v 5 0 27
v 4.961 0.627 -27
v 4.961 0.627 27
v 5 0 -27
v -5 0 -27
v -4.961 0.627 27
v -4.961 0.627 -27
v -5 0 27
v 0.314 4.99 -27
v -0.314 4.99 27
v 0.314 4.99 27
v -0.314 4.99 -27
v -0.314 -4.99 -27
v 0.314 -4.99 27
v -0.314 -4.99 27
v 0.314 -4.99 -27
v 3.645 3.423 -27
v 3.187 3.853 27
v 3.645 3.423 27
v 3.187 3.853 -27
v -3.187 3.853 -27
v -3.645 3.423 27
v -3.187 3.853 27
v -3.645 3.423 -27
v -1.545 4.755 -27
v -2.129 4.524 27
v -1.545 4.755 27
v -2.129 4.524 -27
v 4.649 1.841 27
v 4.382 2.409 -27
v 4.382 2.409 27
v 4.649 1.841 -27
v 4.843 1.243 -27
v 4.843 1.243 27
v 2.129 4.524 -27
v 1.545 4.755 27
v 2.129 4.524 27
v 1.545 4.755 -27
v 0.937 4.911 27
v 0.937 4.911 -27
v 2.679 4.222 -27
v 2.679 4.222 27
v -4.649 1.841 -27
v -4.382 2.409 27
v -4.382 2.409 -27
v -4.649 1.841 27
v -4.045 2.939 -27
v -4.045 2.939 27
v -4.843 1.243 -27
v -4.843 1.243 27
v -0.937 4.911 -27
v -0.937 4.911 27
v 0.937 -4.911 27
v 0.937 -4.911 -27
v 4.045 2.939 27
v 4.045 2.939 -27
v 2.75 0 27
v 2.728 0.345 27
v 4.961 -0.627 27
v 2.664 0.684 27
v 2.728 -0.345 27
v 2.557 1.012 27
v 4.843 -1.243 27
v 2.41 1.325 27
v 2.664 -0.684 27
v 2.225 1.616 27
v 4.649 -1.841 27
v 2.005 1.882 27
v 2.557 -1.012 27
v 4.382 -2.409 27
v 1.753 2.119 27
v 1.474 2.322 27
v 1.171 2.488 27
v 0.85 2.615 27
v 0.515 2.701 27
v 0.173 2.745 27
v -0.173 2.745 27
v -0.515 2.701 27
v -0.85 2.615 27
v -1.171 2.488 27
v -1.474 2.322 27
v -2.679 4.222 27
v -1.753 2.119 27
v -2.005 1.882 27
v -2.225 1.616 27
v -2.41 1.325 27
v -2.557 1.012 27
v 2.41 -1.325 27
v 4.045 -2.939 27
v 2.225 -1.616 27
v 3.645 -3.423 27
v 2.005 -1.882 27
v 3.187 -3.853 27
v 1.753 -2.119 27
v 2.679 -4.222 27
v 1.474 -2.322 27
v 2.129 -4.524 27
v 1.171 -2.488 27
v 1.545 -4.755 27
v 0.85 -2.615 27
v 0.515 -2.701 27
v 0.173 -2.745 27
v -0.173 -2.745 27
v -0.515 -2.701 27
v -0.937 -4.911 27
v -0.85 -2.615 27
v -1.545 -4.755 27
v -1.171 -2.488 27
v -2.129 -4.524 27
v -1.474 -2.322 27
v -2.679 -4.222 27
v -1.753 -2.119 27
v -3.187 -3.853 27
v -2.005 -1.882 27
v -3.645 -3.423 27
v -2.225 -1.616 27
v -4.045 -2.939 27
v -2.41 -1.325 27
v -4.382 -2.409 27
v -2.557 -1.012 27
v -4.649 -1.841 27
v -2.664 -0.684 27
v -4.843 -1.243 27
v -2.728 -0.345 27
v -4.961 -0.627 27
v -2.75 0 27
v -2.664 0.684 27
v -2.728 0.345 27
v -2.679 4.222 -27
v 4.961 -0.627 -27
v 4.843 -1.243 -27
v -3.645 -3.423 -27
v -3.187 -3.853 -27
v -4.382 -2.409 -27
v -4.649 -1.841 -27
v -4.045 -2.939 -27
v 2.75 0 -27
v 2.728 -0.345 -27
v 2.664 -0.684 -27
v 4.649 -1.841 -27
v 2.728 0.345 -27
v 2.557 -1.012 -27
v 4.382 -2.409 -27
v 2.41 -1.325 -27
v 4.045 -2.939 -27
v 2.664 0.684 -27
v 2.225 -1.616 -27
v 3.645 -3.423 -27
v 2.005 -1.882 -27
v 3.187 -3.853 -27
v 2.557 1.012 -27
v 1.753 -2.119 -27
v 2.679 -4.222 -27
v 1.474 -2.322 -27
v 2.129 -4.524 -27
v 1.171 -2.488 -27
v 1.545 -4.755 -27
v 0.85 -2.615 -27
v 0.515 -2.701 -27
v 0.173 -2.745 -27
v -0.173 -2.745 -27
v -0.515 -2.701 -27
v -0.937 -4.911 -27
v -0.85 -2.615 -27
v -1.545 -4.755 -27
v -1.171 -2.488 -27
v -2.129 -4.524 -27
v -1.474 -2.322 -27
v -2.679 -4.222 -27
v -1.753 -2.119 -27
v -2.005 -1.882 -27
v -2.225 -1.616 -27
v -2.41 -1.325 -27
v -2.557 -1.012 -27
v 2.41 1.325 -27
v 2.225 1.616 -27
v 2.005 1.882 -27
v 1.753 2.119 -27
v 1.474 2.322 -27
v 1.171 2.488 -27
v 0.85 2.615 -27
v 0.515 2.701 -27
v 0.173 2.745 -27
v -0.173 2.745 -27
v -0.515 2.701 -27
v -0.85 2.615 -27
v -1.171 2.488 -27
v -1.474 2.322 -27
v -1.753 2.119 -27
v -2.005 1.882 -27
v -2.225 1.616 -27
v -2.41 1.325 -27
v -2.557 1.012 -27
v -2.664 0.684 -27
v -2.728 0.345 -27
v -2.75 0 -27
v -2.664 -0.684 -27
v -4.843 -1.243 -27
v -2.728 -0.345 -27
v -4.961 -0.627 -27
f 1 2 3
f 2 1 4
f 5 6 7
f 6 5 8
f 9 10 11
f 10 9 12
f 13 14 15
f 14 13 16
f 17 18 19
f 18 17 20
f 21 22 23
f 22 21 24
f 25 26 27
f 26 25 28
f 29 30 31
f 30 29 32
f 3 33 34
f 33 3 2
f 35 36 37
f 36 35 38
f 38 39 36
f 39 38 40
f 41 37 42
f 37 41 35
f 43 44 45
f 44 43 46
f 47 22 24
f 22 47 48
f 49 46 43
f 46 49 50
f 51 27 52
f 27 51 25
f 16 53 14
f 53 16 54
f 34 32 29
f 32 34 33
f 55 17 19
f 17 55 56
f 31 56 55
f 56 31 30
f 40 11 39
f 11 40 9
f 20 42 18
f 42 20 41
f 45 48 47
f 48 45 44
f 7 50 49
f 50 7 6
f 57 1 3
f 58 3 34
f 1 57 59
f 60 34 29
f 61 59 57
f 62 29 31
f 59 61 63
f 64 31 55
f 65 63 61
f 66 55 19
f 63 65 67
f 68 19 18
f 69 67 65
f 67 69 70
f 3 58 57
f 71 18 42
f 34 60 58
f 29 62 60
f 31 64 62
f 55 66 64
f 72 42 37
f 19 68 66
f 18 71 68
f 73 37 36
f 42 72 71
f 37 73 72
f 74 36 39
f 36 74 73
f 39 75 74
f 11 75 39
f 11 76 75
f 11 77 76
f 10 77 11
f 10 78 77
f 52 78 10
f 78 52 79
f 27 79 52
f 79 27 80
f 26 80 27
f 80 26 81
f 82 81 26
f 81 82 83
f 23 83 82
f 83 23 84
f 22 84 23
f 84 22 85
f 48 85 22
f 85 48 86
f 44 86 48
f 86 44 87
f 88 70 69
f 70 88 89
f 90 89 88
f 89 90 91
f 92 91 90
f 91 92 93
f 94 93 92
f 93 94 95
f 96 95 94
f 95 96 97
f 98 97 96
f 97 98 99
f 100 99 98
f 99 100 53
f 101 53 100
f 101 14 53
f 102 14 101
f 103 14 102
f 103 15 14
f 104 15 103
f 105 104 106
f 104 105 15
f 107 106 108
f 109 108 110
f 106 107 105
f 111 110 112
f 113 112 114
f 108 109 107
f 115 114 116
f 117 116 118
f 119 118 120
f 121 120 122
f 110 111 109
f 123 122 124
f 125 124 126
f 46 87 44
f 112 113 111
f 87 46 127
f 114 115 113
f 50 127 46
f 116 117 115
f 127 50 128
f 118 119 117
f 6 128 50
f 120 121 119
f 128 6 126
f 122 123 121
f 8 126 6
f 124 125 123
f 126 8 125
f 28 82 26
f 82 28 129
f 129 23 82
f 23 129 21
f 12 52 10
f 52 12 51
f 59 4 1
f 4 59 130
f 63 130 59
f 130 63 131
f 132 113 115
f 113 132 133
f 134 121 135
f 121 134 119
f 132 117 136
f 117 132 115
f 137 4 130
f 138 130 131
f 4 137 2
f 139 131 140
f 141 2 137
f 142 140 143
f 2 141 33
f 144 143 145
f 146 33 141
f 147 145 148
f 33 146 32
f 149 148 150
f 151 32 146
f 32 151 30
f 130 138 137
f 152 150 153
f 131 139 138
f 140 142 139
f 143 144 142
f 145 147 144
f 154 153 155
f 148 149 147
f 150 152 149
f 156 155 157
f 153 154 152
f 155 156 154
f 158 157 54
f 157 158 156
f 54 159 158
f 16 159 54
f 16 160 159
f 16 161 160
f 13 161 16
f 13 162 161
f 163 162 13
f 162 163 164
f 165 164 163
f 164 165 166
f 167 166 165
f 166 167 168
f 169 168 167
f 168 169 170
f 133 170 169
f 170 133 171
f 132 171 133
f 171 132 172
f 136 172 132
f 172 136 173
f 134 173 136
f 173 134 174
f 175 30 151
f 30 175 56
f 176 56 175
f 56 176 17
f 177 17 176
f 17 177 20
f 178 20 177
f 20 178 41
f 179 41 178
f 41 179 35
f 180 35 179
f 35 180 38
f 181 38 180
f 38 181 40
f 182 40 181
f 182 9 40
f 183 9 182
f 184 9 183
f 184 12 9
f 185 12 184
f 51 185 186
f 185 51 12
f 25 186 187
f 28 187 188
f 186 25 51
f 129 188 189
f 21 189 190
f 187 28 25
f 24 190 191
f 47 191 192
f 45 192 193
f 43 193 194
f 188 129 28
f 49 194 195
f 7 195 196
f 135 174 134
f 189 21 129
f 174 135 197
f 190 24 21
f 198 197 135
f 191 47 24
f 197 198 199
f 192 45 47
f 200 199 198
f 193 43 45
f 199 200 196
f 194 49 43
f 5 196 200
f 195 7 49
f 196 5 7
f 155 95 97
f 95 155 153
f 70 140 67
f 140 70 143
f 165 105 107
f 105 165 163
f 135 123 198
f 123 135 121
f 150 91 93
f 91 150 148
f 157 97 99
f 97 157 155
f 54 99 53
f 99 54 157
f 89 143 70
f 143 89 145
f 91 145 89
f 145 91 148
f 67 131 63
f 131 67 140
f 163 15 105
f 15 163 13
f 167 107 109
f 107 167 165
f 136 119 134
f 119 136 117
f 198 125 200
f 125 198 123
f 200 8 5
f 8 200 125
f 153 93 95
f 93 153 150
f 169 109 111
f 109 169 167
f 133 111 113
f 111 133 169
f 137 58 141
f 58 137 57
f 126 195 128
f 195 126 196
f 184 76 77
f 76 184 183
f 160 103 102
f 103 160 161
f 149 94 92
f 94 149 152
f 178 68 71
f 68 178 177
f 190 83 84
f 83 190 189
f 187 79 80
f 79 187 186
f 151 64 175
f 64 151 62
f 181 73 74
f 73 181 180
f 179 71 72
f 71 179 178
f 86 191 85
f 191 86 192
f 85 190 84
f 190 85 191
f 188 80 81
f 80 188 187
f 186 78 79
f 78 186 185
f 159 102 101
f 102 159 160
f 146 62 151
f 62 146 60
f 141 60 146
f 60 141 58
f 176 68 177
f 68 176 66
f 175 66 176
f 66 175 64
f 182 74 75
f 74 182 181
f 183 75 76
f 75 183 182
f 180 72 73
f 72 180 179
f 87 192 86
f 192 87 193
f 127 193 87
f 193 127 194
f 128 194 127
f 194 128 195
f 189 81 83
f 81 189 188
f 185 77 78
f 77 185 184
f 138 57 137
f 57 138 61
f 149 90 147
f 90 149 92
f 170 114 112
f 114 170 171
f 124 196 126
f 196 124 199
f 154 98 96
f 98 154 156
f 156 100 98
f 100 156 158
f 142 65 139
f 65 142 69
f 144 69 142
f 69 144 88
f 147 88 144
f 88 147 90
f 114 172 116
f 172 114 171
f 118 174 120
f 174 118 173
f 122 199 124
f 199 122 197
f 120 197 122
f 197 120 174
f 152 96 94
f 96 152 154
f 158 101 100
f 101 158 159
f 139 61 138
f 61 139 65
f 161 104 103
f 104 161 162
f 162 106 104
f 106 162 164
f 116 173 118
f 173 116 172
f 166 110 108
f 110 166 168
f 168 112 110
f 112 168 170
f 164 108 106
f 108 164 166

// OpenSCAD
$fn = 50;


difference() {
	union() {
		translate(v = [0, 0, -27.0000000000]) {
			cylinder(h = 54, r = 5.0000000000);
		}
	}
	union() {
		translate(v = [0, 0, -100.0000000000]) {
			cylinder(h = 200, r = 2.7500000000);
		}
	}
}
